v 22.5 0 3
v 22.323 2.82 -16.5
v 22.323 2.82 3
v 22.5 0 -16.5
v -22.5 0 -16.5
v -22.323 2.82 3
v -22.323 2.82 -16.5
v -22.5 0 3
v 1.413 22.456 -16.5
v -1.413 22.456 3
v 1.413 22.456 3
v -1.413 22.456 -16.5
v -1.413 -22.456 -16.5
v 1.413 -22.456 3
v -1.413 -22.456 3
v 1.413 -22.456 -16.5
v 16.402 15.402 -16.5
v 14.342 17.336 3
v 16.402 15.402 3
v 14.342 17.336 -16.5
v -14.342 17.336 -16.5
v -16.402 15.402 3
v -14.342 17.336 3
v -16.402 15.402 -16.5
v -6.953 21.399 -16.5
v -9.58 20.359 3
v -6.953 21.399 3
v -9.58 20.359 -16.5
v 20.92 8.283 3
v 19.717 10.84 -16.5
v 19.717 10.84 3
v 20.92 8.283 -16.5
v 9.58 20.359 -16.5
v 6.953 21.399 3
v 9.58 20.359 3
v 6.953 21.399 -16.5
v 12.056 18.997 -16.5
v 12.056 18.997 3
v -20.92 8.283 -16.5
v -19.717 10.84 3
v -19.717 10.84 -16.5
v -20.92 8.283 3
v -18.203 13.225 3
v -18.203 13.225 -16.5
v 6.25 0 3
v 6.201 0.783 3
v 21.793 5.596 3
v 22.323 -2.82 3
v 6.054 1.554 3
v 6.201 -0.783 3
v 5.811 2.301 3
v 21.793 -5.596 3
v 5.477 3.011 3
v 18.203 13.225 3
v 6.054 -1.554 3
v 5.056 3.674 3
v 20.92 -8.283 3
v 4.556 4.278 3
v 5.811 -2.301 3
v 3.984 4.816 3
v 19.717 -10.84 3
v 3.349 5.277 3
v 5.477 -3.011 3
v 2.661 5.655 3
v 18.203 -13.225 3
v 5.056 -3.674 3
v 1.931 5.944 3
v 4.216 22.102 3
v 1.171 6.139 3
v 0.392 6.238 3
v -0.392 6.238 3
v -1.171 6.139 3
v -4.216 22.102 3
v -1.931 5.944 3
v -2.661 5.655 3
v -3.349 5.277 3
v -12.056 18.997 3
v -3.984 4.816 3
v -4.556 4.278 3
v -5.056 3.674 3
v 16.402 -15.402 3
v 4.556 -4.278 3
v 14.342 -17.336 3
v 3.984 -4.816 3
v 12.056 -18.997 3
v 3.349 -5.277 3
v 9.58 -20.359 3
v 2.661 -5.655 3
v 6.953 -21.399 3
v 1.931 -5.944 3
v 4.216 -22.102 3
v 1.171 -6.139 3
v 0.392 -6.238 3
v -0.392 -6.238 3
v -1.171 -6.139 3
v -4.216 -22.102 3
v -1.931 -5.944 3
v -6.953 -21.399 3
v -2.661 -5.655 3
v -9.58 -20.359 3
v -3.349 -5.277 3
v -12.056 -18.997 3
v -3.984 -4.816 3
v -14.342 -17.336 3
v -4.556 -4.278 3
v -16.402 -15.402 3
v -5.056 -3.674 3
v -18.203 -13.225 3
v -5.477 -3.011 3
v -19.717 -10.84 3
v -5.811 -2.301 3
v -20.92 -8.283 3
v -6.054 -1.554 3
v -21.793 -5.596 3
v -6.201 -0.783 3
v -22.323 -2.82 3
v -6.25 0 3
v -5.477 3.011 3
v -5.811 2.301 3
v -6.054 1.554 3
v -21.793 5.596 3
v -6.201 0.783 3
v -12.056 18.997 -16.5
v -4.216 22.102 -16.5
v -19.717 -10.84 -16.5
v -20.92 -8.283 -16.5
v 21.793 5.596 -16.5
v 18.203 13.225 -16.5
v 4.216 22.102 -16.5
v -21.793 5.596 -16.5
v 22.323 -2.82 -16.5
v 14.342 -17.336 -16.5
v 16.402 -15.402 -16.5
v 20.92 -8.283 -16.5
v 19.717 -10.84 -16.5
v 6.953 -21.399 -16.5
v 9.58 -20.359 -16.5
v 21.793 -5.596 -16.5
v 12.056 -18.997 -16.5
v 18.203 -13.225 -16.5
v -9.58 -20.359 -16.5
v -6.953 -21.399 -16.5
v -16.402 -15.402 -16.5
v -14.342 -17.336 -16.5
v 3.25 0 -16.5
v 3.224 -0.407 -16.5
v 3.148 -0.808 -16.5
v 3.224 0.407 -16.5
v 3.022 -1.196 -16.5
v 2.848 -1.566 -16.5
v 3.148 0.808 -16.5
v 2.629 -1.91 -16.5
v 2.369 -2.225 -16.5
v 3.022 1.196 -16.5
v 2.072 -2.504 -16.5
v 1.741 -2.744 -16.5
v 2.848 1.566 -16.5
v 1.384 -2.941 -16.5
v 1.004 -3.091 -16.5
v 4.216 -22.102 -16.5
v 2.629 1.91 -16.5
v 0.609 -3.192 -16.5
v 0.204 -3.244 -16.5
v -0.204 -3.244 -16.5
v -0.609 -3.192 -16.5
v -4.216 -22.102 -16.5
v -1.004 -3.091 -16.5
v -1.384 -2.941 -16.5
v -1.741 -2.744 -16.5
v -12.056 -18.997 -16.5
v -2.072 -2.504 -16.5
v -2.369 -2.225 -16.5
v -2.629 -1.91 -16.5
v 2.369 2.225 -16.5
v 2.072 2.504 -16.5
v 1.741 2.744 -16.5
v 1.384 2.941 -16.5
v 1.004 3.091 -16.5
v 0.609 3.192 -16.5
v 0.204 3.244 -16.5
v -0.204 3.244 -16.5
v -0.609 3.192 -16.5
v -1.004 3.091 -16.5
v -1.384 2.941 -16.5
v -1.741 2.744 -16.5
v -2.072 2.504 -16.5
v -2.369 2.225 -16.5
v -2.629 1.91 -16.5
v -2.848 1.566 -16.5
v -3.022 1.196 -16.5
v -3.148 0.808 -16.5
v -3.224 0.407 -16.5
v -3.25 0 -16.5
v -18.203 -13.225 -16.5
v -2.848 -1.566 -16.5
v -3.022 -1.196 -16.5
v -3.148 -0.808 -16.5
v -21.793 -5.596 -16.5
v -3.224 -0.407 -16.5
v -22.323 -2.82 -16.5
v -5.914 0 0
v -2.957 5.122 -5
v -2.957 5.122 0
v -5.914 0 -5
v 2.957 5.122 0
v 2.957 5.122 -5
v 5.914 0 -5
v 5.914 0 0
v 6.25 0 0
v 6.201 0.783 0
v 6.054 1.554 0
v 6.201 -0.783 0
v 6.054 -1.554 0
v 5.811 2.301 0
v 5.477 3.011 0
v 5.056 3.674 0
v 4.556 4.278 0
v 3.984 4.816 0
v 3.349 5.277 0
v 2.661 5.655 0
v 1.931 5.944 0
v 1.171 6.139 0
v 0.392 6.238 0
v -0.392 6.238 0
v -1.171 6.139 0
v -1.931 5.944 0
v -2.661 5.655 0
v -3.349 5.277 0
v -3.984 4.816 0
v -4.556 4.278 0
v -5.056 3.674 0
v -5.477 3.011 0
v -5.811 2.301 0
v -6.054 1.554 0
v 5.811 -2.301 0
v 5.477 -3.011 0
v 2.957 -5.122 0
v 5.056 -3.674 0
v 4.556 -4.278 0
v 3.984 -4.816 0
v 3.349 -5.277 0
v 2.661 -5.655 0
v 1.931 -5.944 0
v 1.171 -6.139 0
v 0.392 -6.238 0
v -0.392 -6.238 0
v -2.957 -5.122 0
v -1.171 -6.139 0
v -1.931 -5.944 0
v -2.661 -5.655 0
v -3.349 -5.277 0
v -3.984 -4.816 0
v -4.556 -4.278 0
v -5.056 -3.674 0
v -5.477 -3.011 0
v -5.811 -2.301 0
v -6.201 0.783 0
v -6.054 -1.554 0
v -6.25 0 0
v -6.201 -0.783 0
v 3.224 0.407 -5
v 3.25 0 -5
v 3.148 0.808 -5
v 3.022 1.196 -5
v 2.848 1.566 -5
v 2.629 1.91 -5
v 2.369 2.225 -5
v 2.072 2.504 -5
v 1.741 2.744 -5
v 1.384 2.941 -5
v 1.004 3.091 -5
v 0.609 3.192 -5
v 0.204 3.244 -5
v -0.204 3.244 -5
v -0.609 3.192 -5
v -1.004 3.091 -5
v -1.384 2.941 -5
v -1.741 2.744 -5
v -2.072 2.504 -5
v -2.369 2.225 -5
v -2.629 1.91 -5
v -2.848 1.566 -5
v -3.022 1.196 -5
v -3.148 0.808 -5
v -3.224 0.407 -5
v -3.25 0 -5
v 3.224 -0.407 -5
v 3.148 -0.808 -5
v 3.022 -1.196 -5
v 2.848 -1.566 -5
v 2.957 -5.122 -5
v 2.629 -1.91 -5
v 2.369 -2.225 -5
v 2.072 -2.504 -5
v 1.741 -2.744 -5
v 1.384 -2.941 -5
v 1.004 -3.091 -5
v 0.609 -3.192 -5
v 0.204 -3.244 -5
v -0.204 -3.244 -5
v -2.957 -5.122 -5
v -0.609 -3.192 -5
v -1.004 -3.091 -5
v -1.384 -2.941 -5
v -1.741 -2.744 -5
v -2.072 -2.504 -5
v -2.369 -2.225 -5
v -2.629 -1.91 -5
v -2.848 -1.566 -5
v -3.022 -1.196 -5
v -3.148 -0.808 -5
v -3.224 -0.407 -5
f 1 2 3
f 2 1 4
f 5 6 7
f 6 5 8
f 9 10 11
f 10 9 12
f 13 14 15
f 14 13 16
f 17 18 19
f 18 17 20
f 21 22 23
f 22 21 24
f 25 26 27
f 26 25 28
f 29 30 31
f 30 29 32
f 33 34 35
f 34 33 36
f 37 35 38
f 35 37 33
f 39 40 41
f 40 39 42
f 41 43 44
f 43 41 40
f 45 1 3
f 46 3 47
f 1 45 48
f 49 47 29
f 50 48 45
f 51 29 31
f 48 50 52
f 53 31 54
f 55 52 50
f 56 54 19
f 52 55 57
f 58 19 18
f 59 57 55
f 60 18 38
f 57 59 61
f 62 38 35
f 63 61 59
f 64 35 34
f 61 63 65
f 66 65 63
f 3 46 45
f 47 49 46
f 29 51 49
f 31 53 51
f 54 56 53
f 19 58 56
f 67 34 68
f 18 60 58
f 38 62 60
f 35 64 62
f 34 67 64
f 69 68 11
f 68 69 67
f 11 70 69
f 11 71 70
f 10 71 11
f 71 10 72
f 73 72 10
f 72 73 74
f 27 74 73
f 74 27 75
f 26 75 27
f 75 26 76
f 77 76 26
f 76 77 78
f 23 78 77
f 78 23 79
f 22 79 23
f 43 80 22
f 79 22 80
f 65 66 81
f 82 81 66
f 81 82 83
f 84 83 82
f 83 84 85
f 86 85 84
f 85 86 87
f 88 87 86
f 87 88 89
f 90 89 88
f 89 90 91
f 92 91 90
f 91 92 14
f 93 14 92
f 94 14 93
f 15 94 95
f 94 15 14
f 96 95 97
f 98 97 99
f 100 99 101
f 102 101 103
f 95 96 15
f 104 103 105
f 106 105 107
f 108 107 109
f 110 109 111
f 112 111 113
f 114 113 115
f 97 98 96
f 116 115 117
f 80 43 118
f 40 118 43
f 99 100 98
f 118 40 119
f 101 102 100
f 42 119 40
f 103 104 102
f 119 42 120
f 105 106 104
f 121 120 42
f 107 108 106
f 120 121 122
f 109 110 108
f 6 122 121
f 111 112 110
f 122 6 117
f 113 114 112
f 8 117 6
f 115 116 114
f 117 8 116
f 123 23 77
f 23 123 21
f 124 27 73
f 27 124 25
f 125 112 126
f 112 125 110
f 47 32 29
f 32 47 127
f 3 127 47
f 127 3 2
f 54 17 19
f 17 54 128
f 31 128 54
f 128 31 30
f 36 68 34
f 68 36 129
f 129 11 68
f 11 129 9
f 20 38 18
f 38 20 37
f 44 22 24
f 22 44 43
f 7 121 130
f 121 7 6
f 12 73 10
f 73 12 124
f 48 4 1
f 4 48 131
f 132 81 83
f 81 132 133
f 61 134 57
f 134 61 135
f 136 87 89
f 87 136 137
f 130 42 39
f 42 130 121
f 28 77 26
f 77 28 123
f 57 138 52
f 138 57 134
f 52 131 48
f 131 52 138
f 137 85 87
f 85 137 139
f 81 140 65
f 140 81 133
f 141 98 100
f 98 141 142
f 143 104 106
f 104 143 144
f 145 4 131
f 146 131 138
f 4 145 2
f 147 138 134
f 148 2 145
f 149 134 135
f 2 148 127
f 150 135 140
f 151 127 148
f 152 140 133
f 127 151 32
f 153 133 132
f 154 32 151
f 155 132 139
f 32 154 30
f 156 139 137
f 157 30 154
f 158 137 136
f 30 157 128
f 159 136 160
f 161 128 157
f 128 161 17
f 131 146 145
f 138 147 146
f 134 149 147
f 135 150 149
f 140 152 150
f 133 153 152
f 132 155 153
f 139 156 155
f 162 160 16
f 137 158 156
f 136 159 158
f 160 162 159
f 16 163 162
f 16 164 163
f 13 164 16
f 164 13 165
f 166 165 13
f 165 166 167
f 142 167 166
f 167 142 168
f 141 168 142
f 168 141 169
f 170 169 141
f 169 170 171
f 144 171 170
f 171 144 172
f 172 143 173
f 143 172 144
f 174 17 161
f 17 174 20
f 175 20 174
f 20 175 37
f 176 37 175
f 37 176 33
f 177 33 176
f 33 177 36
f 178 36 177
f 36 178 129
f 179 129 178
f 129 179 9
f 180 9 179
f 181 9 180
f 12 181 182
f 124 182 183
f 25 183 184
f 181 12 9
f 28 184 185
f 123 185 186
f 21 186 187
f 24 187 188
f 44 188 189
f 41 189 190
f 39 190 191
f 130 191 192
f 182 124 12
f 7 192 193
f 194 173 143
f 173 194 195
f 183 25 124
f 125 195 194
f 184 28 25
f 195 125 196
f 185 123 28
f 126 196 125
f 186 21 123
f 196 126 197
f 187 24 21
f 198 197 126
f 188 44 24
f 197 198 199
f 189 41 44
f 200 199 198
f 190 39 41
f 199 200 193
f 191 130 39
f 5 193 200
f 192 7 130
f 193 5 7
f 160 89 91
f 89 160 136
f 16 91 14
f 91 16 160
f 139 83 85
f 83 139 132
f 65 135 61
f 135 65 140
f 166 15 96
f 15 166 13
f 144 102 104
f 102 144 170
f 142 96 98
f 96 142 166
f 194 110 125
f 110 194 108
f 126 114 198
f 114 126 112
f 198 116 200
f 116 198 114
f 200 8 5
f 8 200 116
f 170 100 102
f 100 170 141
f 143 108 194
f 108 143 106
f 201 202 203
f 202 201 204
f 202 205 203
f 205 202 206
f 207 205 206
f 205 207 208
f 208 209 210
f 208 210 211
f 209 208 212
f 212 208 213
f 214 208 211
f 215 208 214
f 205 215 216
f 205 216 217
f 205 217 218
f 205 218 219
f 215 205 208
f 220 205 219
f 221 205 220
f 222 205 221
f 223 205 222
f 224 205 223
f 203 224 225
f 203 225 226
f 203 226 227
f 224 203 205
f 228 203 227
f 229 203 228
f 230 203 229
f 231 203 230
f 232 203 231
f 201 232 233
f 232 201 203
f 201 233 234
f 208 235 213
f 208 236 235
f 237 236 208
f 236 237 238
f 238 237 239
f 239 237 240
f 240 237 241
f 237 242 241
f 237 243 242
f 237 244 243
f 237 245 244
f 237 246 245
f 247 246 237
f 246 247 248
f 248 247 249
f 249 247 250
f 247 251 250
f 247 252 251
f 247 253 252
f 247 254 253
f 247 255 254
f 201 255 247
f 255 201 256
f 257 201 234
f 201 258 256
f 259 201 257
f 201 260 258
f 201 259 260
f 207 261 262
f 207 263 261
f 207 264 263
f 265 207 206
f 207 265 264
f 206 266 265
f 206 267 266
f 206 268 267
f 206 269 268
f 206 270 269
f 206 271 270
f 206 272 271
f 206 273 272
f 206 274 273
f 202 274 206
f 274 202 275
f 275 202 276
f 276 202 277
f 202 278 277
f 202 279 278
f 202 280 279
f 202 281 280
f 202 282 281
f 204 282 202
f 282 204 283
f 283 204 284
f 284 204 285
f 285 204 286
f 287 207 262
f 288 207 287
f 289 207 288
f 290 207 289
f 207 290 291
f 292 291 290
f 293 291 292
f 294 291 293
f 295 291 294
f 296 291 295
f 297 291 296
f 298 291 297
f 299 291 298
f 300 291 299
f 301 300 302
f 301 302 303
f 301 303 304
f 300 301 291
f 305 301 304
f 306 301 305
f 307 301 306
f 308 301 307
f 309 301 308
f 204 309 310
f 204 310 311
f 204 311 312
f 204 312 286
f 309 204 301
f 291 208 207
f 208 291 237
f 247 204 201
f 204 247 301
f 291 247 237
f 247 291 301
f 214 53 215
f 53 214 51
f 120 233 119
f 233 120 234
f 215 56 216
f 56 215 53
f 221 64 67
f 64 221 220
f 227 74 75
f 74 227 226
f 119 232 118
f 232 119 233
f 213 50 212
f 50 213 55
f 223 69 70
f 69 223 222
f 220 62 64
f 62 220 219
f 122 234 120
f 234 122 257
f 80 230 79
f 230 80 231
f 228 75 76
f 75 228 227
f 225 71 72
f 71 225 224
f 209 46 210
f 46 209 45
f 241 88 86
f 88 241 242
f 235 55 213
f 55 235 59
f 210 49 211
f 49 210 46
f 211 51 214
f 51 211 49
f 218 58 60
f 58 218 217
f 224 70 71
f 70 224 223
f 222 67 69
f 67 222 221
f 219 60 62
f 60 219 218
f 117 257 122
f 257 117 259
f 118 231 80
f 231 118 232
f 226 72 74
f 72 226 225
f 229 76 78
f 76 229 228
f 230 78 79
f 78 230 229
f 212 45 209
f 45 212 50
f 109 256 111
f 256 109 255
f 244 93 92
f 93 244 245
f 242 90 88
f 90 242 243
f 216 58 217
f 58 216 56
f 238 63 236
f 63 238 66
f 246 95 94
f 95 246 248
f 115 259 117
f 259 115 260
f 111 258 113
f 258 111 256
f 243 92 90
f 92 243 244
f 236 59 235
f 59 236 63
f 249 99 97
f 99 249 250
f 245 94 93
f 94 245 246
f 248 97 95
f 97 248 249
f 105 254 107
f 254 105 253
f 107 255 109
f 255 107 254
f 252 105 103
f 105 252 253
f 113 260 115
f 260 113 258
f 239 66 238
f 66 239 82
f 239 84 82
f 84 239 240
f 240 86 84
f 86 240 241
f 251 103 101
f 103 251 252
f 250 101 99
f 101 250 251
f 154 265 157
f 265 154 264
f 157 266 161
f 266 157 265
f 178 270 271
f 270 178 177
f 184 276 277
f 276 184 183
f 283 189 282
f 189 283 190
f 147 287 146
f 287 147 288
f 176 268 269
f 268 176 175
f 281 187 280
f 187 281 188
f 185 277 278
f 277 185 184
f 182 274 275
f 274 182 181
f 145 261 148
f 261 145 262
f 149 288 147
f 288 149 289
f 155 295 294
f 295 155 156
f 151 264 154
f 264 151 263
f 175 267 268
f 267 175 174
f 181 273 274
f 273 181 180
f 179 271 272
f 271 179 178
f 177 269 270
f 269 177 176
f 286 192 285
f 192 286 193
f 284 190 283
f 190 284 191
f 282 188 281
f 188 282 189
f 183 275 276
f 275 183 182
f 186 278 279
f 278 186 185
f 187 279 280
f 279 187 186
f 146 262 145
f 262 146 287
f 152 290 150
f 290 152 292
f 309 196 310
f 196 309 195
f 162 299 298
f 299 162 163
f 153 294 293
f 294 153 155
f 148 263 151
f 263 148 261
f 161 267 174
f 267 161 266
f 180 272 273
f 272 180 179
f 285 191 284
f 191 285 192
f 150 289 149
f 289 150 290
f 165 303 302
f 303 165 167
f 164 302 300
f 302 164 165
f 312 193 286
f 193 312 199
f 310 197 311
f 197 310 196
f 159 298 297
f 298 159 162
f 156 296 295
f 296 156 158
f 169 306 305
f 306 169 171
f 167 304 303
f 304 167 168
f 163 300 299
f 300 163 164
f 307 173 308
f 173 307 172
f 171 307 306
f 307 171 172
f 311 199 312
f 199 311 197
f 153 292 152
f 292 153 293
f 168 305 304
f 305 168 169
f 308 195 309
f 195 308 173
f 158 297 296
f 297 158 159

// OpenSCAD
$fn = 50;

difference() {
	union() {
		translate(v = [0, 0, -16.5]) {
			cylinder(h = 19.5, r = 22.5);
		}
		#translate(v = [0, 0, -18.0]) {
			cylinder(h = 18, r = 2.875);
		}
	}
	union() {
		translate(v = [0, 0, 0]) {
			rotate(a = [0, 0, 0]) {
				difference() {
					union() {
						translate(v = [0, 0, -5]) {
							linear_extrude(height = 5) {
								polygon(points = [[5.914249999999999, 0.0], [2.957125, 5.1218907443321156], [-2.9571249999999982, 5.1218907443321156], [-5.914249999999999, 7.242867331857232e-16], [-2.9571250000000022, -5.121890744332115], [2.9571249999999956, -5.121890744332118]]);
							}
						}
					}
					union();
				}
			}
		}
		#cylinder(h = 3, r = 6.25);
		#translate(v = [0, 0, -100.0]) {
			cylinder(h = 200, r = 3.25);
		}
	}
}
